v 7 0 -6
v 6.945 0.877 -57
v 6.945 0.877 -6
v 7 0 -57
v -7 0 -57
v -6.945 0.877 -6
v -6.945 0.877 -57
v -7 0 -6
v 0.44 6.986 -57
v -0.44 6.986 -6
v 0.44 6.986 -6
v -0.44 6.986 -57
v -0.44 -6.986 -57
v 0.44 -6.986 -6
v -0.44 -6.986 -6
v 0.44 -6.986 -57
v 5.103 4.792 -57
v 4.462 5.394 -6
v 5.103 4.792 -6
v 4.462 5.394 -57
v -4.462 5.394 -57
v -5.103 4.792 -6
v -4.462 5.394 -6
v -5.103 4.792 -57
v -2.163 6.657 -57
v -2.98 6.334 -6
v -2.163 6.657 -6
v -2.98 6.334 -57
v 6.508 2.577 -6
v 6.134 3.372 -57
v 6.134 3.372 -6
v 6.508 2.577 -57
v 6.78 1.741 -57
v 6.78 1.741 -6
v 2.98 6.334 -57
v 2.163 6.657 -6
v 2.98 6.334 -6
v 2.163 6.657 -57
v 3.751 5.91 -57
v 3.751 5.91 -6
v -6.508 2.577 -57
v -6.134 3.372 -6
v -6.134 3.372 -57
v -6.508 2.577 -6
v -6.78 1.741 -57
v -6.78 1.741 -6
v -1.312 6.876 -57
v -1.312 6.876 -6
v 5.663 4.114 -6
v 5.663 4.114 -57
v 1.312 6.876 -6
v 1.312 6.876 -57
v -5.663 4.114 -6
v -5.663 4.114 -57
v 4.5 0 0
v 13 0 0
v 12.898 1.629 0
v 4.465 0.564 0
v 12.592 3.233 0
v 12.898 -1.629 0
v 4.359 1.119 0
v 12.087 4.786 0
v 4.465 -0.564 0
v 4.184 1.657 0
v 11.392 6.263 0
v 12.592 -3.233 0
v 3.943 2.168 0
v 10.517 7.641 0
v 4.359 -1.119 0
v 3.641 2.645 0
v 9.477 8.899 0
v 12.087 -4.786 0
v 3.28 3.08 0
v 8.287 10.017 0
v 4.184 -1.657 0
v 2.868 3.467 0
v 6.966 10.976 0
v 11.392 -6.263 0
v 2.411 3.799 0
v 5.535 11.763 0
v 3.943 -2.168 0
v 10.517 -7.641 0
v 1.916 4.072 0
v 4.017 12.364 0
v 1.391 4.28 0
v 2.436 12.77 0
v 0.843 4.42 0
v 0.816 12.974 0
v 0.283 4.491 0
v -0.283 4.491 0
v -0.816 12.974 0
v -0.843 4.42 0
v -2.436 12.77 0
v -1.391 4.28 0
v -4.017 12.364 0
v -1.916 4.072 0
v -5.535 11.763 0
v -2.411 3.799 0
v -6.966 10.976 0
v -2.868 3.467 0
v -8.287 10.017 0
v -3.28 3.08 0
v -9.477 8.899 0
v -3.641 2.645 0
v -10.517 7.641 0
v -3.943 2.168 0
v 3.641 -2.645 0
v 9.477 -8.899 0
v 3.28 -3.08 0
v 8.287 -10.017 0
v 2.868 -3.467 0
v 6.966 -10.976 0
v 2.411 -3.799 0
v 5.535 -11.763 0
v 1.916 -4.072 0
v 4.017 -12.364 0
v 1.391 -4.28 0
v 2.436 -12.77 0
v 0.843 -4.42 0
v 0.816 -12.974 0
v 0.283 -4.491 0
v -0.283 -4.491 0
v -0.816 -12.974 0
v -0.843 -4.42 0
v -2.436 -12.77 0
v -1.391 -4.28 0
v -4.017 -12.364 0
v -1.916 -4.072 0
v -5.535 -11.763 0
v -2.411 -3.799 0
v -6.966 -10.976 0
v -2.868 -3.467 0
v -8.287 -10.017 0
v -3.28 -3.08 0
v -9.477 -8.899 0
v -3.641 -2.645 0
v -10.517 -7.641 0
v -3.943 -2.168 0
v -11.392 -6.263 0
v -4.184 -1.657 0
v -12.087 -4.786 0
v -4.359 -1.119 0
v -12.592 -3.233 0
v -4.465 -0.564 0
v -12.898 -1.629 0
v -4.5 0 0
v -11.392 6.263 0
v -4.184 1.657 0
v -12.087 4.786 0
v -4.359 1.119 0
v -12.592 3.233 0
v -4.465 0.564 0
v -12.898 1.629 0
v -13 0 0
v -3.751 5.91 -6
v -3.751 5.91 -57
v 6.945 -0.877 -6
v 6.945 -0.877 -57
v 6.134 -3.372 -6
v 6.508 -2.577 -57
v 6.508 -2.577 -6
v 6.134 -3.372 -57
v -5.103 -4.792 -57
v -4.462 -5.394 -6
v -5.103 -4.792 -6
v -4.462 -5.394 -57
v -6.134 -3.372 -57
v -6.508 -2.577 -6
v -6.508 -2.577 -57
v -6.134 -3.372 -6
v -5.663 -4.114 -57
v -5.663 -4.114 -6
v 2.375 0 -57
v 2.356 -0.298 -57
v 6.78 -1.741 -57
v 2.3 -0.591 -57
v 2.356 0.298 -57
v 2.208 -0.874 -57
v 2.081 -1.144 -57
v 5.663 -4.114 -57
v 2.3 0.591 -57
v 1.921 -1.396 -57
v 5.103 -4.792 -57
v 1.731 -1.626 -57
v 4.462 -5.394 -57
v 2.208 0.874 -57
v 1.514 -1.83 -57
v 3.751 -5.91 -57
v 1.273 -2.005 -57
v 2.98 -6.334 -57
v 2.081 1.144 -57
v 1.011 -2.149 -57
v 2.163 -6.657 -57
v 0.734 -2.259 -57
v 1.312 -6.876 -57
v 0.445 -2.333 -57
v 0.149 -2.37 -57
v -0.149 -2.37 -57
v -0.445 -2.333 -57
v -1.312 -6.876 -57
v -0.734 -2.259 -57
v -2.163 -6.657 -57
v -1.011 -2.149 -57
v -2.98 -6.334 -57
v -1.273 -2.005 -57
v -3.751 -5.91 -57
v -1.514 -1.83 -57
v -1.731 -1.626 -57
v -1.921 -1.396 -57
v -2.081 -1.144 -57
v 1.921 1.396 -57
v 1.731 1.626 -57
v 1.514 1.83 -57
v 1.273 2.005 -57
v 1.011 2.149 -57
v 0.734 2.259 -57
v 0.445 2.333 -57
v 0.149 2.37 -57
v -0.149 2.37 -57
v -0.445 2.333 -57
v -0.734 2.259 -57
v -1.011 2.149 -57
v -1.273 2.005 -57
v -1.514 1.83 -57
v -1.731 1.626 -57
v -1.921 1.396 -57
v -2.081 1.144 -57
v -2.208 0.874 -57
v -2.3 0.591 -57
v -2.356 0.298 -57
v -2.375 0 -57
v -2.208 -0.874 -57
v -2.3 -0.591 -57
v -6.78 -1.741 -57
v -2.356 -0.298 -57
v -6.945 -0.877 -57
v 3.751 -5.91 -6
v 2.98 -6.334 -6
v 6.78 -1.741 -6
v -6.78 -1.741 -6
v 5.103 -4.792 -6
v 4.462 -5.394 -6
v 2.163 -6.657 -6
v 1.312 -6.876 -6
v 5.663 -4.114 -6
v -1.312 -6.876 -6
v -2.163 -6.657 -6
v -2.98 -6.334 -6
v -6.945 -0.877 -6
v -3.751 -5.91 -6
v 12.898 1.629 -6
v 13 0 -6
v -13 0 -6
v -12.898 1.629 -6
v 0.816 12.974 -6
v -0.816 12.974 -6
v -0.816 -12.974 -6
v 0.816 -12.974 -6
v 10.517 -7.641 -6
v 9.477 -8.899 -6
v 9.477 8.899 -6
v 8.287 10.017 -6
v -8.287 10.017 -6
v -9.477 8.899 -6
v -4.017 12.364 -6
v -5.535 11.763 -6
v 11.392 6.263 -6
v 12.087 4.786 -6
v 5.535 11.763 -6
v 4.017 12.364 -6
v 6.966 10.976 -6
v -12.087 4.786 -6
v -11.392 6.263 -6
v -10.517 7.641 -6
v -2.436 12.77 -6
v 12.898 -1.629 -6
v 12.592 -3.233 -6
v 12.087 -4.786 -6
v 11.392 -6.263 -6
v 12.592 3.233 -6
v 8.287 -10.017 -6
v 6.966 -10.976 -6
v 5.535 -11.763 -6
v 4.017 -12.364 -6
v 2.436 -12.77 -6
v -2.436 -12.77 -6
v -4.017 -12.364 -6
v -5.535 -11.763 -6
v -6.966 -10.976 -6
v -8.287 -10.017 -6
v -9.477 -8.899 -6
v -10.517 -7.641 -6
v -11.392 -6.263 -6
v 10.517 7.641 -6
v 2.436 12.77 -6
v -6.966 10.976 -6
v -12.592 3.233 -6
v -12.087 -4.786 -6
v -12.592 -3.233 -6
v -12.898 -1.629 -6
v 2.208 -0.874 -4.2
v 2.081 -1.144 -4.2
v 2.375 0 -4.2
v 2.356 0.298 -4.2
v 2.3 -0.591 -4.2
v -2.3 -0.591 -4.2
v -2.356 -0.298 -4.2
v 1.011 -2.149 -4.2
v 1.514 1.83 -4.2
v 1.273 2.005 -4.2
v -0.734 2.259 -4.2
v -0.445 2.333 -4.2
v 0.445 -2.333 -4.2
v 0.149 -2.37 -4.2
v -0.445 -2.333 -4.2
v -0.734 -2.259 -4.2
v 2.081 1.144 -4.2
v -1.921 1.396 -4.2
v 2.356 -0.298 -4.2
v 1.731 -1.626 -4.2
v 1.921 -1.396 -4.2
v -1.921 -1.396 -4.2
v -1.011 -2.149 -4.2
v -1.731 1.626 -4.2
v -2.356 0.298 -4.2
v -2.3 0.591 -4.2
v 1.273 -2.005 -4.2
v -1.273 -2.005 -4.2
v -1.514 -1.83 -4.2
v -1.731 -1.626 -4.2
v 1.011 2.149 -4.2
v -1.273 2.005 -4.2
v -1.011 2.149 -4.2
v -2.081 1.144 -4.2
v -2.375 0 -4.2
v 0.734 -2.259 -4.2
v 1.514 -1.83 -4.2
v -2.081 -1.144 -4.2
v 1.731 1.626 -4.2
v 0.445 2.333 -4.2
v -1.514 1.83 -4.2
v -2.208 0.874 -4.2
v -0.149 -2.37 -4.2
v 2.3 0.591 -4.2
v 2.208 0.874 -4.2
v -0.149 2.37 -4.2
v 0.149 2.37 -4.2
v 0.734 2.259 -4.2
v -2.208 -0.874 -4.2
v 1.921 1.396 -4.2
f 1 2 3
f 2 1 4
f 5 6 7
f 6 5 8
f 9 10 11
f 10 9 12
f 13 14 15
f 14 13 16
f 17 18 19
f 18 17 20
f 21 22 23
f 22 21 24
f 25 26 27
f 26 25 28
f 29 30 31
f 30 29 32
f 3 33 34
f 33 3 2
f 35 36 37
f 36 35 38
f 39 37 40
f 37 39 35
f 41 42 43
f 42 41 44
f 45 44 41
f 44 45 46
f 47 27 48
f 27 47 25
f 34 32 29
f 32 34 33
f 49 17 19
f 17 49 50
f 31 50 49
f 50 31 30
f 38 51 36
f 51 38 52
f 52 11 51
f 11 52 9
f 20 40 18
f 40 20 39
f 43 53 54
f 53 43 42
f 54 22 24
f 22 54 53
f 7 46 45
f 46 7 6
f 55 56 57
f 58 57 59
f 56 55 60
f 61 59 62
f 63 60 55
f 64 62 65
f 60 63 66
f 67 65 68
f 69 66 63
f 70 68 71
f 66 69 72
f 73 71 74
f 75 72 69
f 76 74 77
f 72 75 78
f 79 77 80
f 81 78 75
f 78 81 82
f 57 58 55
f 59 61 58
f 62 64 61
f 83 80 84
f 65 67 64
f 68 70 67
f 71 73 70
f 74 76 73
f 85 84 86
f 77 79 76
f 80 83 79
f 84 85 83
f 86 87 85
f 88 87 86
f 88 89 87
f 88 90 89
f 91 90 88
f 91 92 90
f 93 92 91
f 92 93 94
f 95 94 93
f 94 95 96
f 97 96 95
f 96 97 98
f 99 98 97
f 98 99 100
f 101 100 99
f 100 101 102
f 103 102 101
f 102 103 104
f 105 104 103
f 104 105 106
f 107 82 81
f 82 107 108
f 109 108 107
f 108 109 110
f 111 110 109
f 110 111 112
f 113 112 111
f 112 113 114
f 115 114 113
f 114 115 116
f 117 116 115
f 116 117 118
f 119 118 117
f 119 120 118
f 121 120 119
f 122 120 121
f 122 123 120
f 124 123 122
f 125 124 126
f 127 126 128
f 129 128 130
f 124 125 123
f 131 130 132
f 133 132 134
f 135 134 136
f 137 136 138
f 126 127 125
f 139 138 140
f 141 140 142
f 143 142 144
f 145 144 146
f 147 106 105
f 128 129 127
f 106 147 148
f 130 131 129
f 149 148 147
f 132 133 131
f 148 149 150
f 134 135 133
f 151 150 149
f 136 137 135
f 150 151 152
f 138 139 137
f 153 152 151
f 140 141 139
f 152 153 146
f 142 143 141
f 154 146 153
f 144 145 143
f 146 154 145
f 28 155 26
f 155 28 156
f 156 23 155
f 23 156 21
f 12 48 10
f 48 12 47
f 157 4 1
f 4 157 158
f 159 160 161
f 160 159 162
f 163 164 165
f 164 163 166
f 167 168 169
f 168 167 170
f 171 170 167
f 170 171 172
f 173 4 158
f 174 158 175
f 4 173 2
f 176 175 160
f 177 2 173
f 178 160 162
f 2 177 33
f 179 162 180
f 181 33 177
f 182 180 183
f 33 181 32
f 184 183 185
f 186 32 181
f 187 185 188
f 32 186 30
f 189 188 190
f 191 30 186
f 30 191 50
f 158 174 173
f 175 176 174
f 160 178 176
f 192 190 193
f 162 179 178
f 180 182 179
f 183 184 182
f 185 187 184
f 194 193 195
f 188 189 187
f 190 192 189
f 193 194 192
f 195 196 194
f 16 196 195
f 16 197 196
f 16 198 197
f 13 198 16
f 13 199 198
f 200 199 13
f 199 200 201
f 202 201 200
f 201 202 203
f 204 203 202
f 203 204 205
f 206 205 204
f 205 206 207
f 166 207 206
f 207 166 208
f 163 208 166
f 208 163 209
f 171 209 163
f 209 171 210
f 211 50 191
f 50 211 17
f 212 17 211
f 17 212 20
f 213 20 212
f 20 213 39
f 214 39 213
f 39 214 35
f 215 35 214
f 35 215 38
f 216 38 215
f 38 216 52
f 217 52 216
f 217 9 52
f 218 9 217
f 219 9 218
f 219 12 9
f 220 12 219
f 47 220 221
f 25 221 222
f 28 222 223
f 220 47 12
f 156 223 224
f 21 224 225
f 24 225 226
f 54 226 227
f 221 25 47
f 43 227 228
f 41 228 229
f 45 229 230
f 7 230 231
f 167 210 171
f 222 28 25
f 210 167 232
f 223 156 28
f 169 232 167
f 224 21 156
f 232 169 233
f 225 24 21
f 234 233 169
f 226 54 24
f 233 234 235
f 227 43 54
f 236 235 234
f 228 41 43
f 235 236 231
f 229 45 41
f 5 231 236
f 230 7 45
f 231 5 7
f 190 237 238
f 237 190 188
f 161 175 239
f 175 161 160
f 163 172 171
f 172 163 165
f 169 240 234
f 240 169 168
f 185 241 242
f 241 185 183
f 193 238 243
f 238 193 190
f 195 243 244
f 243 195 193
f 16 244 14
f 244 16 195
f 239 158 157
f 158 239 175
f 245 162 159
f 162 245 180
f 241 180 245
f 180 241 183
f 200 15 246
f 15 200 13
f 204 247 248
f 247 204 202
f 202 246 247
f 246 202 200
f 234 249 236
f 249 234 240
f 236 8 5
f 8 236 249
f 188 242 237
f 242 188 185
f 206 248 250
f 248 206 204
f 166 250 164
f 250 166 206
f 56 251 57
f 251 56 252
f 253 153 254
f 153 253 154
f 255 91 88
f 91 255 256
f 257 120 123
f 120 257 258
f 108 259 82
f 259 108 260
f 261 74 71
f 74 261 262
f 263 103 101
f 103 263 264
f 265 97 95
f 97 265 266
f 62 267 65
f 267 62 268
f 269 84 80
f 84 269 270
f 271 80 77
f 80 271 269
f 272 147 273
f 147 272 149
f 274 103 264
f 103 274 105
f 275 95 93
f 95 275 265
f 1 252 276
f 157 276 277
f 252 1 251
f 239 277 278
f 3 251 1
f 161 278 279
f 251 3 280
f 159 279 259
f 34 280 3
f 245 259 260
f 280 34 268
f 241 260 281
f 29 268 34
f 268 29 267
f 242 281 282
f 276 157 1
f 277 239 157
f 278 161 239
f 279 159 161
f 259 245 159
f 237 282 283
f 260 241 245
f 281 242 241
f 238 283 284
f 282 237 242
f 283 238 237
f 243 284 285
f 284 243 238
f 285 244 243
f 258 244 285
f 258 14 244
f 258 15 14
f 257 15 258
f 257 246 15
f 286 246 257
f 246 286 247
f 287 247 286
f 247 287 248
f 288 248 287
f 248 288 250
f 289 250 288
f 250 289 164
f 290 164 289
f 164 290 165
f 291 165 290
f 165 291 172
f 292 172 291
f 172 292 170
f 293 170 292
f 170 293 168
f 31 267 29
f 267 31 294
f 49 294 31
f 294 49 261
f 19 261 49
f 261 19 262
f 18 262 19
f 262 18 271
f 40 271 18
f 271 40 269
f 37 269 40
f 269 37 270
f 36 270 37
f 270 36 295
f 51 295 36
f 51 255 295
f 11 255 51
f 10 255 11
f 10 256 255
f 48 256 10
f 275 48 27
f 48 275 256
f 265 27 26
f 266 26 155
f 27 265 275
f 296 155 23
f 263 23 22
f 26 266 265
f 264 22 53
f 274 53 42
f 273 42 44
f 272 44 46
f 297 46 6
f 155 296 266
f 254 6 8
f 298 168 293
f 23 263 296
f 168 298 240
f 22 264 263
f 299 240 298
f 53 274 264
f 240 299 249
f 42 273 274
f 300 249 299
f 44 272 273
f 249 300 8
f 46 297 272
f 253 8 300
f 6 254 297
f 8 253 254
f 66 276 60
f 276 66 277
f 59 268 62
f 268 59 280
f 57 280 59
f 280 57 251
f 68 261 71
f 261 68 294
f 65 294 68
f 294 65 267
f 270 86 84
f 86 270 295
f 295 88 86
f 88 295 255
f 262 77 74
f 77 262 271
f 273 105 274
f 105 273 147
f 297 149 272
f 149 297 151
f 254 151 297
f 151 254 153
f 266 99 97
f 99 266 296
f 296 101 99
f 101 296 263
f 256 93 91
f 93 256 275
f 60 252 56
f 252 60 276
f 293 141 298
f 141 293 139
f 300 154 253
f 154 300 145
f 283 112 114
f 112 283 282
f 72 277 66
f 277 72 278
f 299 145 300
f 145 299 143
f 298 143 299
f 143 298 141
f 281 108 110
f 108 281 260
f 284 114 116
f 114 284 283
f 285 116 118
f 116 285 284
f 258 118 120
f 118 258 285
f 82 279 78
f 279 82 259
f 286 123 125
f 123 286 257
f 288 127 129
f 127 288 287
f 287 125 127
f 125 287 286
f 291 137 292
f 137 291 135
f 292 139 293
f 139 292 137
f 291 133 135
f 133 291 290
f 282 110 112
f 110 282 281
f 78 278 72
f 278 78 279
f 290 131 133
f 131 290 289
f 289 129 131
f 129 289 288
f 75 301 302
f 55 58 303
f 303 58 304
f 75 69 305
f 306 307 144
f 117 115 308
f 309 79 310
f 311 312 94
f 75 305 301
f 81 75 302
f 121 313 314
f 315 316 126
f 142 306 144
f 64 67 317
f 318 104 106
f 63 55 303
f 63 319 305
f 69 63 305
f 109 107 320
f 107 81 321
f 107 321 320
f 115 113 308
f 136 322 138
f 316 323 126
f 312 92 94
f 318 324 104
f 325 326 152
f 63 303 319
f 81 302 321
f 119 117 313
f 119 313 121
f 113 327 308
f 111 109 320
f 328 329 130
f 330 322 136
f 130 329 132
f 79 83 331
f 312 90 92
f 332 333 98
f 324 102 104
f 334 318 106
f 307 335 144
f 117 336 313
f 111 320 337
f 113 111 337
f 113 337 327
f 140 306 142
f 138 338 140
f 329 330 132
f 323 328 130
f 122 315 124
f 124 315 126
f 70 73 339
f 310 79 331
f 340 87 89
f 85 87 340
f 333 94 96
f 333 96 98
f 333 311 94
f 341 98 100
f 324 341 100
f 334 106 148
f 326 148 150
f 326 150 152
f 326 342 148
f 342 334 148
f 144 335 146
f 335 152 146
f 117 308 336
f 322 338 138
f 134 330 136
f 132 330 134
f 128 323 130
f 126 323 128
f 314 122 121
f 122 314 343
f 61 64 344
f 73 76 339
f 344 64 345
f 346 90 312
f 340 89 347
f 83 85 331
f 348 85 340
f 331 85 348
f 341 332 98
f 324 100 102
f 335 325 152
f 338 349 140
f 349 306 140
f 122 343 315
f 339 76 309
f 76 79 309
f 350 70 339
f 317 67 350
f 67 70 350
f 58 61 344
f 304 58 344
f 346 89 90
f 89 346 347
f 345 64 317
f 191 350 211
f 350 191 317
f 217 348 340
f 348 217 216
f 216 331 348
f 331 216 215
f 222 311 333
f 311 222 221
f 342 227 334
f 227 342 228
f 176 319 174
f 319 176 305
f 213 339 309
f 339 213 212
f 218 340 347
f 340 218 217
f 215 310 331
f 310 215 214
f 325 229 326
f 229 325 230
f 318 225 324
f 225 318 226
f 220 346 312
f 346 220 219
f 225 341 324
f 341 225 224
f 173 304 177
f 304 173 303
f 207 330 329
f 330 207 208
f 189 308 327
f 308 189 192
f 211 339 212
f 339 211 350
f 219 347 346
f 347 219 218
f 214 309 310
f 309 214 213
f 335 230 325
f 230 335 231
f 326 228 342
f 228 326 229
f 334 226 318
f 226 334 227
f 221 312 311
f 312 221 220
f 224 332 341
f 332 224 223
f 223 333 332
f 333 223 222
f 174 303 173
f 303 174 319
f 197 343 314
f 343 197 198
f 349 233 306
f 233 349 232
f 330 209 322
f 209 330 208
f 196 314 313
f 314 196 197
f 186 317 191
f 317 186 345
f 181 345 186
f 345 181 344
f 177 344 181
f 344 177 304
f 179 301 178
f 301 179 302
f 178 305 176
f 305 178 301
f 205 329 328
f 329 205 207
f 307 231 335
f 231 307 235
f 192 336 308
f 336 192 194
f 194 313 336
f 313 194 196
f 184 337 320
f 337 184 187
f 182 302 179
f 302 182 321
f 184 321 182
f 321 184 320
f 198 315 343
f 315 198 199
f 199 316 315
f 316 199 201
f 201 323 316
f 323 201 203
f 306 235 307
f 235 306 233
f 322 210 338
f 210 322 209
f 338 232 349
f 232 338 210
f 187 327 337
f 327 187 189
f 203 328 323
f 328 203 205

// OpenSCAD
$fn = 50;


difference() {
	union() {
		translate(v = [0, 0, -57.0000000000]) {
			cylinder(h = 57, r = 7.0000000000);
		}
		translate(v = [0, 0, -6.0000000000]) {
			cylinder(h = 6, r = 13.0000000000);
		}
	}
	union() {
		translate(v = [0, 0, 0]) {
			rotate(a = [0, 0, 0]) {
				difference() {
					union() {
						#translate(v = [0, 0, -57.0000000000]) {
							cylinder(h = 57, r = 2.2500000000);
						}
						#translate(v = [0, 0, -4.2000000000]) {
							cylinder(h = 4.2000000000, r = 7.0000000000, r1 = 2.3750000000, r2 = 4.5000000000);
						}
						#translate(v = [0, 0, -57.0000000000]) {
							cylinder(h = 57, r = 2.3750000000);
						}
						#translate(v = [0, 0, -57.0000000000]) {
							cylinder(h = 57, r = 2.2500000000);
						}
					}
					union();
				}
			}
		}
	}
}
